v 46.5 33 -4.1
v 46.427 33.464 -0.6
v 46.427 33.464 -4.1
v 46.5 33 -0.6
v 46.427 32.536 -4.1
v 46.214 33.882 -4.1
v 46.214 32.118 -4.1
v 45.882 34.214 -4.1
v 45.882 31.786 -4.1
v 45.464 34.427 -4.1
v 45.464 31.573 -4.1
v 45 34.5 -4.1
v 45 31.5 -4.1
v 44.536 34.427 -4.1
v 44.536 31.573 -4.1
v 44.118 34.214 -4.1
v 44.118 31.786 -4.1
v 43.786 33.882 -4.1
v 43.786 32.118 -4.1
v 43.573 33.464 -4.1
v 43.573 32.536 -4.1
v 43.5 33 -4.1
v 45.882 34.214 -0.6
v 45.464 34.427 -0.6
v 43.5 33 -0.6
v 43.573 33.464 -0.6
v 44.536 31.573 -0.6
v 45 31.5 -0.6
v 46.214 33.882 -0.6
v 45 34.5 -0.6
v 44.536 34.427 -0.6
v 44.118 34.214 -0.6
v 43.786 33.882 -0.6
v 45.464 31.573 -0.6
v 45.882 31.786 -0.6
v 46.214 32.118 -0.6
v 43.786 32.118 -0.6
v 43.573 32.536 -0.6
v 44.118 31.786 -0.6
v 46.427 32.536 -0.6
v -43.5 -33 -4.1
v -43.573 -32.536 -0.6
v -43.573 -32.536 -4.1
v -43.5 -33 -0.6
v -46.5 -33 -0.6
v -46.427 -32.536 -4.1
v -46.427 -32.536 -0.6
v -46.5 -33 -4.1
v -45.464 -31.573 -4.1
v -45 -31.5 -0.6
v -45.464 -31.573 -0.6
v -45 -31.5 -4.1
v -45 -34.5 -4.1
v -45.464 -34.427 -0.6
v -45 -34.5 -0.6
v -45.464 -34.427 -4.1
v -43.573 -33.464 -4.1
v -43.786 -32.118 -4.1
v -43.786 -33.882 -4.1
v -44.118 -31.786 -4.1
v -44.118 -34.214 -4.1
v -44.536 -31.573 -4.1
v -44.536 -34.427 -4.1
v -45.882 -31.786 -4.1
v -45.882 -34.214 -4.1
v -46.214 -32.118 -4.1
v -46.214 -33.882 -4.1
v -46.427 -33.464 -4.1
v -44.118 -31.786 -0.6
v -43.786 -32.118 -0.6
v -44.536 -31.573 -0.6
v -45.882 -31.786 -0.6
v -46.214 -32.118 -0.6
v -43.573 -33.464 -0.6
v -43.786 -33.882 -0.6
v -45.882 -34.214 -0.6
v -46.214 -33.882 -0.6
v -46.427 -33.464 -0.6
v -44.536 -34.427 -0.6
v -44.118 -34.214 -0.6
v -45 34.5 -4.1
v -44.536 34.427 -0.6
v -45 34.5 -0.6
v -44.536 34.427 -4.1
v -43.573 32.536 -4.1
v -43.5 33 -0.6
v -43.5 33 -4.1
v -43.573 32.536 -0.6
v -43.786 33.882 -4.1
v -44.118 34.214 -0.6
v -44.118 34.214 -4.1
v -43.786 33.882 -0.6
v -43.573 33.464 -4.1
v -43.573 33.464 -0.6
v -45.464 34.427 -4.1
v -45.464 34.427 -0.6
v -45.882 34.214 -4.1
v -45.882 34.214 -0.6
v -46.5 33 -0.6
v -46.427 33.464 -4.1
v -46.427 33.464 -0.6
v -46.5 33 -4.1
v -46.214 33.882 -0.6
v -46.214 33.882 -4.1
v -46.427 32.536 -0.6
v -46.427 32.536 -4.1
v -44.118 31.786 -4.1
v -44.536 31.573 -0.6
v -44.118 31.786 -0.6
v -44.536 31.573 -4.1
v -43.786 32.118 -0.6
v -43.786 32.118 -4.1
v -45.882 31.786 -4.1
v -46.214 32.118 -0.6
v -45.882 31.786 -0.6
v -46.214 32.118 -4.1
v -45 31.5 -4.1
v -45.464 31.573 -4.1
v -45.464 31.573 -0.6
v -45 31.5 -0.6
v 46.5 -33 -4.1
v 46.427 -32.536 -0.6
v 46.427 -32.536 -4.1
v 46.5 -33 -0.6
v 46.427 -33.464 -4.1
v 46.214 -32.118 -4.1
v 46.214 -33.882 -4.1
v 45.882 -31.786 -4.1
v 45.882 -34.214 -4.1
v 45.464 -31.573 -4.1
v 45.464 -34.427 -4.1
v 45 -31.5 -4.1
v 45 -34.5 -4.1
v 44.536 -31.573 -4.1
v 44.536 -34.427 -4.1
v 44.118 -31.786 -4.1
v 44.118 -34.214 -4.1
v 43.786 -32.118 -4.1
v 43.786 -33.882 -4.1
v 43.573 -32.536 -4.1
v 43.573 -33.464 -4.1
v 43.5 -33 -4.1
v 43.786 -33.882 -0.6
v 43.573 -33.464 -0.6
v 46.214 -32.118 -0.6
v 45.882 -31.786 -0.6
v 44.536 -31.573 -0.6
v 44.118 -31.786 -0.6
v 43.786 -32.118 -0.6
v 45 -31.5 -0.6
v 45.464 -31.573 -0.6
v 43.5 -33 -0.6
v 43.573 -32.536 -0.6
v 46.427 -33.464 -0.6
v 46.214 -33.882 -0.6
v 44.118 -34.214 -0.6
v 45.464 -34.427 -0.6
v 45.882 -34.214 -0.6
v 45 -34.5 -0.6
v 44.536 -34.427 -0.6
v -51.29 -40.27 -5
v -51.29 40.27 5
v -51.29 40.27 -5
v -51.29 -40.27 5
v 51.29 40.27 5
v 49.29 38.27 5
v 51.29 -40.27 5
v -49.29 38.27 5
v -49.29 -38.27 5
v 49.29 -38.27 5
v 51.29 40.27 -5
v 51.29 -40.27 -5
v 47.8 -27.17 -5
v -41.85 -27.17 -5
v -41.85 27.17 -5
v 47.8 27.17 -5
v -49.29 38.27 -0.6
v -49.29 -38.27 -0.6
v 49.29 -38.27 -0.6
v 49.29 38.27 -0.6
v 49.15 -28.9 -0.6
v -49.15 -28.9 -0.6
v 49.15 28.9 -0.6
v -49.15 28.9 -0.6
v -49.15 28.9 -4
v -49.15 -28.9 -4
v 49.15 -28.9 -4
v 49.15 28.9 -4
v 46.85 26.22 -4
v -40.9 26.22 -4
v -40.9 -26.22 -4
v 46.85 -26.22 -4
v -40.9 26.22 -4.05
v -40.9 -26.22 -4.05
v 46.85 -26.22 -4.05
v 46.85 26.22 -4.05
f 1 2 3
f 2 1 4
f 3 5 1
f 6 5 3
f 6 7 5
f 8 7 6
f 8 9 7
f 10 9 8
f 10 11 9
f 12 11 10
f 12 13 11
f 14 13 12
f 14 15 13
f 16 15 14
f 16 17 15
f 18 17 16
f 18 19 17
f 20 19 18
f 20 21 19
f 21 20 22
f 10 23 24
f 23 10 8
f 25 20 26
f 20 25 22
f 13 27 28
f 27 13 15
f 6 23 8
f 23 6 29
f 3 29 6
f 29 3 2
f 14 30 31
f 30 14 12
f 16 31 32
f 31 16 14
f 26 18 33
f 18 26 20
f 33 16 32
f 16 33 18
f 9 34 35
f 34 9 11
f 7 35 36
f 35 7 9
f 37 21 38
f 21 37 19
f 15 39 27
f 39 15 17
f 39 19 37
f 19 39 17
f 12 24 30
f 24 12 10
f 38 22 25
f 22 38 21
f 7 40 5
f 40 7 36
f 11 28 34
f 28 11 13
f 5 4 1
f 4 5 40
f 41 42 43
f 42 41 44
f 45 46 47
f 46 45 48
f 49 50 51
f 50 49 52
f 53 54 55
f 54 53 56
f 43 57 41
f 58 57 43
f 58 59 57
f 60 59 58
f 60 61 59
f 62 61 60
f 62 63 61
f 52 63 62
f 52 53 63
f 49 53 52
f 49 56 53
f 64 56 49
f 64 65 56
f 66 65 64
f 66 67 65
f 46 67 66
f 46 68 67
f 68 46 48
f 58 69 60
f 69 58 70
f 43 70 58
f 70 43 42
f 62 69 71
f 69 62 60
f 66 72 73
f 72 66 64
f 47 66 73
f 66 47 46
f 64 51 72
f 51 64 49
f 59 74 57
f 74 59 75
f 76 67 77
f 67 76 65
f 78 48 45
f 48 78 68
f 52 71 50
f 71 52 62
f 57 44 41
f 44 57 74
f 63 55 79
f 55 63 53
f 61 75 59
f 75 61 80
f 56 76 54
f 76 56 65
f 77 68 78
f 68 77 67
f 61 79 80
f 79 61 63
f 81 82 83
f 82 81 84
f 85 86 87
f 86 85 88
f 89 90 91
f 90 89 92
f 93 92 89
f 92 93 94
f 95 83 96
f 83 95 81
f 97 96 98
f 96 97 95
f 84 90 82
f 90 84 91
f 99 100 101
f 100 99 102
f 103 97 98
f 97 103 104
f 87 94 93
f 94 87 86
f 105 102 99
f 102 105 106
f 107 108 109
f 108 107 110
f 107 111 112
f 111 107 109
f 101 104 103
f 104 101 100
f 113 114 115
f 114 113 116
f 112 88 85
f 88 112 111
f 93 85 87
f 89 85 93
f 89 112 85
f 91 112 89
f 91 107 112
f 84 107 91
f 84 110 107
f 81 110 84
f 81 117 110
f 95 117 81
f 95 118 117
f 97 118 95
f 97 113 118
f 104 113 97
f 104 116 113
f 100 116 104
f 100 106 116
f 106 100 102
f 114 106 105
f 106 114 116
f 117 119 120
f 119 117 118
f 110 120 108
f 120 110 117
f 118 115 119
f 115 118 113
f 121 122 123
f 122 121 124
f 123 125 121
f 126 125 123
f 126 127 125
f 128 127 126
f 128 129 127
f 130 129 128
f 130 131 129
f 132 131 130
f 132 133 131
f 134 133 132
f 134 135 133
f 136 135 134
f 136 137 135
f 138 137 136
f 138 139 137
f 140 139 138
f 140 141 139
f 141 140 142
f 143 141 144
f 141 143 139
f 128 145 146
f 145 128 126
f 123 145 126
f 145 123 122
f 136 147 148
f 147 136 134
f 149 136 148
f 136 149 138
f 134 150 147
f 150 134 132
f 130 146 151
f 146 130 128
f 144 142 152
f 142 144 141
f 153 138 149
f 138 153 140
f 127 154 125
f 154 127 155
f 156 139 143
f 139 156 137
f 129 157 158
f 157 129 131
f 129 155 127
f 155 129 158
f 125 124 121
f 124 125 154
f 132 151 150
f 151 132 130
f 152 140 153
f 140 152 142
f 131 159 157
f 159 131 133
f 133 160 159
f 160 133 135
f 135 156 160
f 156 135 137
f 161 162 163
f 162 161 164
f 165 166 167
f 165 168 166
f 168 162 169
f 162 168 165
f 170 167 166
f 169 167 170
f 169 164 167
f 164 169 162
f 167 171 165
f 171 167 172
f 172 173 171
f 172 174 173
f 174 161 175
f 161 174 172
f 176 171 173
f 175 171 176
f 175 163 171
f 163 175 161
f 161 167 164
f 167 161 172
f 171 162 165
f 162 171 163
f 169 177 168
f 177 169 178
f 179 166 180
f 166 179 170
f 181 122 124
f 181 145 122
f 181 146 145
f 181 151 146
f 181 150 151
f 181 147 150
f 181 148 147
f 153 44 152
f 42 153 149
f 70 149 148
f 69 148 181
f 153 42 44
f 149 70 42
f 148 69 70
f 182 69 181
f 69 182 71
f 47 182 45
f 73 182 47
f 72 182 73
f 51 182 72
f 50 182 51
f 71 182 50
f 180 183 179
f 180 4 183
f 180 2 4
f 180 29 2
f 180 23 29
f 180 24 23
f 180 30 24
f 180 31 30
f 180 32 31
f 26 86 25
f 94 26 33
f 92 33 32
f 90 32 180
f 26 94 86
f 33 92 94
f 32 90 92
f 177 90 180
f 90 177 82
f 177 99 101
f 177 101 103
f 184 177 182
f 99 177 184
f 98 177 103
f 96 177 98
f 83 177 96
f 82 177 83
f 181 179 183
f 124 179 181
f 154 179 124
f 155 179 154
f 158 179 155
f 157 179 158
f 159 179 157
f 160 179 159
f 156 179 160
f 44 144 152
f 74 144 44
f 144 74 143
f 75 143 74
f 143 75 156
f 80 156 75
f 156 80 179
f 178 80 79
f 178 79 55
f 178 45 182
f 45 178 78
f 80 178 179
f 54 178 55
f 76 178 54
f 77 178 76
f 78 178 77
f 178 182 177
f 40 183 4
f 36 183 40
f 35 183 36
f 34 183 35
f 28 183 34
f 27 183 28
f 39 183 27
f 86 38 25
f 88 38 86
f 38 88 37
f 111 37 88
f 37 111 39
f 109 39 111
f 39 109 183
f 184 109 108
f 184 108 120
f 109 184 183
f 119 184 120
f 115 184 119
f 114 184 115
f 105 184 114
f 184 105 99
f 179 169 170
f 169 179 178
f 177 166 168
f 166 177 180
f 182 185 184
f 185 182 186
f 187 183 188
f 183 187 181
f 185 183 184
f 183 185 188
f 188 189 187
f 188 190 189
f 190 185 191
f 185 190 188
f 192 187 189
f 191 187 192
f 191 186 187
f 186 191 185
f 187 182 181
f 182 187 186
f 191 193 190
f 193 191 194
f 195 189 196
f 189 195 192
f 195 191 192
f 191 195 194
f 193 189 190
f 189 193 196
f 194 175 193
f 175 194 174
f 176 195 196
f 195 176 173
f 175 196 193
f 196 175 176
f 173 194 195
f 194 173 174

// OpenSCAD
// waveshare 4-0 lcd.scad
//bezel and mount for waveshare 4.0" 800x480 IPS HDMI LCD

echo(version=version());

box_size = 10;
PCB_height = 76.54;
PCB_width = 98.58;
PCB_hole_width = 90;
PCB_hole_height = 66;
SCREEN_width = 97.8;
SCREEN_height = 57.3;
SCREEN_thickness = 3.4;
VIEWABLE_width = 87.75;
VIEWABLE_height = 52.44;

wall_thickness = 1.5;
bezel_thickness = 1;

VIEWABLE_offset = 7.95;
shim = 0.5;


TrapezoidPoints = [
  [  -bezel_thickness,  -bezel_thickness,  0 ],  //0
  [ VIEWABLE_width+bezel_thickness,  -bezel_thickness,  0 ],  //1
  [ VIEWABLE_width+bezel_thickness,  VIEWABLE_height+bezel_thickness,  0 ],  //2
  [  -bezel_thickness,  VIEWABLE_height+bezel_thickness,  0 ],  //3
  [  0,  0,  bezel_thickness ],  //4
  [ VIEWABLE_width,  0,  bezel_thickness ],  //5
  [ VIEWABLE_width,  VIEWABLE_height,  bezel_thickness ],  //6
  [  0,  VIEWABLE_height,  bezel_thickness ]]; //7
  
TrapezoidFaces = [
  [0,1,2,3],  // bottom
  [4,5,1,0],  // front
  [7,6,5,4],  // top
  [5,6,2,1],  // right
  [6,7,3,2],  // back
  [7,4,0,3]]; // left
  
union(){
    difference() {
        color("gray") cube([PCB_width + (2*wall_thickness)+ (2*shim),PCB_height  + (2*wall_thickness)+ (2*shim),box_size], center = true);

        translate([0,0,SCREEN_thickness+bezel_thickness])cube([PCB_width,PCB_height,box_size], center = true);
        translate([0,0,bezel_thickness])cube([SCREEN_width + shim, SCREEN_height + shim, box_size], center=true);
        translate([(VIEWABLE_offset-2)/2, 0, -0.1])cube([VIEWABLE_width, VIEWABLE_height, box_size],center=true);
        translate([-VIEWABLE_width/2+(VIEWABLE_offset-2)/2,-VIEWABLE_height/2,-box_size/2-0.05])polyhedron( TrapezoidPoints, TrapezoidFaces );    
        translate([0,0,-(box_size/2)+SCREEN_thickness]){
            translate([PCB_hole_width/2, PCB_hole_height/2])cylinder(h=5, r=1.5,$fn=20, center=true);
            translate([-PCB_hole_width/2, -PCB_hole_height/2])cylinder(h=5, r=1.5,$fn=20, center=true);
            translate([-PCB_hole_width/2, PCB_hole_height/2])cylinder(h=5, r=1.5,$fn=20, center=true);
            translate([PCB_hole_width/2, -PCB_hole_height/2])cylinder(h=5, r=1.5,$fn=20, center=true);
        }
        //TODO: add cutout for HDMI socket and thing
    }

}
